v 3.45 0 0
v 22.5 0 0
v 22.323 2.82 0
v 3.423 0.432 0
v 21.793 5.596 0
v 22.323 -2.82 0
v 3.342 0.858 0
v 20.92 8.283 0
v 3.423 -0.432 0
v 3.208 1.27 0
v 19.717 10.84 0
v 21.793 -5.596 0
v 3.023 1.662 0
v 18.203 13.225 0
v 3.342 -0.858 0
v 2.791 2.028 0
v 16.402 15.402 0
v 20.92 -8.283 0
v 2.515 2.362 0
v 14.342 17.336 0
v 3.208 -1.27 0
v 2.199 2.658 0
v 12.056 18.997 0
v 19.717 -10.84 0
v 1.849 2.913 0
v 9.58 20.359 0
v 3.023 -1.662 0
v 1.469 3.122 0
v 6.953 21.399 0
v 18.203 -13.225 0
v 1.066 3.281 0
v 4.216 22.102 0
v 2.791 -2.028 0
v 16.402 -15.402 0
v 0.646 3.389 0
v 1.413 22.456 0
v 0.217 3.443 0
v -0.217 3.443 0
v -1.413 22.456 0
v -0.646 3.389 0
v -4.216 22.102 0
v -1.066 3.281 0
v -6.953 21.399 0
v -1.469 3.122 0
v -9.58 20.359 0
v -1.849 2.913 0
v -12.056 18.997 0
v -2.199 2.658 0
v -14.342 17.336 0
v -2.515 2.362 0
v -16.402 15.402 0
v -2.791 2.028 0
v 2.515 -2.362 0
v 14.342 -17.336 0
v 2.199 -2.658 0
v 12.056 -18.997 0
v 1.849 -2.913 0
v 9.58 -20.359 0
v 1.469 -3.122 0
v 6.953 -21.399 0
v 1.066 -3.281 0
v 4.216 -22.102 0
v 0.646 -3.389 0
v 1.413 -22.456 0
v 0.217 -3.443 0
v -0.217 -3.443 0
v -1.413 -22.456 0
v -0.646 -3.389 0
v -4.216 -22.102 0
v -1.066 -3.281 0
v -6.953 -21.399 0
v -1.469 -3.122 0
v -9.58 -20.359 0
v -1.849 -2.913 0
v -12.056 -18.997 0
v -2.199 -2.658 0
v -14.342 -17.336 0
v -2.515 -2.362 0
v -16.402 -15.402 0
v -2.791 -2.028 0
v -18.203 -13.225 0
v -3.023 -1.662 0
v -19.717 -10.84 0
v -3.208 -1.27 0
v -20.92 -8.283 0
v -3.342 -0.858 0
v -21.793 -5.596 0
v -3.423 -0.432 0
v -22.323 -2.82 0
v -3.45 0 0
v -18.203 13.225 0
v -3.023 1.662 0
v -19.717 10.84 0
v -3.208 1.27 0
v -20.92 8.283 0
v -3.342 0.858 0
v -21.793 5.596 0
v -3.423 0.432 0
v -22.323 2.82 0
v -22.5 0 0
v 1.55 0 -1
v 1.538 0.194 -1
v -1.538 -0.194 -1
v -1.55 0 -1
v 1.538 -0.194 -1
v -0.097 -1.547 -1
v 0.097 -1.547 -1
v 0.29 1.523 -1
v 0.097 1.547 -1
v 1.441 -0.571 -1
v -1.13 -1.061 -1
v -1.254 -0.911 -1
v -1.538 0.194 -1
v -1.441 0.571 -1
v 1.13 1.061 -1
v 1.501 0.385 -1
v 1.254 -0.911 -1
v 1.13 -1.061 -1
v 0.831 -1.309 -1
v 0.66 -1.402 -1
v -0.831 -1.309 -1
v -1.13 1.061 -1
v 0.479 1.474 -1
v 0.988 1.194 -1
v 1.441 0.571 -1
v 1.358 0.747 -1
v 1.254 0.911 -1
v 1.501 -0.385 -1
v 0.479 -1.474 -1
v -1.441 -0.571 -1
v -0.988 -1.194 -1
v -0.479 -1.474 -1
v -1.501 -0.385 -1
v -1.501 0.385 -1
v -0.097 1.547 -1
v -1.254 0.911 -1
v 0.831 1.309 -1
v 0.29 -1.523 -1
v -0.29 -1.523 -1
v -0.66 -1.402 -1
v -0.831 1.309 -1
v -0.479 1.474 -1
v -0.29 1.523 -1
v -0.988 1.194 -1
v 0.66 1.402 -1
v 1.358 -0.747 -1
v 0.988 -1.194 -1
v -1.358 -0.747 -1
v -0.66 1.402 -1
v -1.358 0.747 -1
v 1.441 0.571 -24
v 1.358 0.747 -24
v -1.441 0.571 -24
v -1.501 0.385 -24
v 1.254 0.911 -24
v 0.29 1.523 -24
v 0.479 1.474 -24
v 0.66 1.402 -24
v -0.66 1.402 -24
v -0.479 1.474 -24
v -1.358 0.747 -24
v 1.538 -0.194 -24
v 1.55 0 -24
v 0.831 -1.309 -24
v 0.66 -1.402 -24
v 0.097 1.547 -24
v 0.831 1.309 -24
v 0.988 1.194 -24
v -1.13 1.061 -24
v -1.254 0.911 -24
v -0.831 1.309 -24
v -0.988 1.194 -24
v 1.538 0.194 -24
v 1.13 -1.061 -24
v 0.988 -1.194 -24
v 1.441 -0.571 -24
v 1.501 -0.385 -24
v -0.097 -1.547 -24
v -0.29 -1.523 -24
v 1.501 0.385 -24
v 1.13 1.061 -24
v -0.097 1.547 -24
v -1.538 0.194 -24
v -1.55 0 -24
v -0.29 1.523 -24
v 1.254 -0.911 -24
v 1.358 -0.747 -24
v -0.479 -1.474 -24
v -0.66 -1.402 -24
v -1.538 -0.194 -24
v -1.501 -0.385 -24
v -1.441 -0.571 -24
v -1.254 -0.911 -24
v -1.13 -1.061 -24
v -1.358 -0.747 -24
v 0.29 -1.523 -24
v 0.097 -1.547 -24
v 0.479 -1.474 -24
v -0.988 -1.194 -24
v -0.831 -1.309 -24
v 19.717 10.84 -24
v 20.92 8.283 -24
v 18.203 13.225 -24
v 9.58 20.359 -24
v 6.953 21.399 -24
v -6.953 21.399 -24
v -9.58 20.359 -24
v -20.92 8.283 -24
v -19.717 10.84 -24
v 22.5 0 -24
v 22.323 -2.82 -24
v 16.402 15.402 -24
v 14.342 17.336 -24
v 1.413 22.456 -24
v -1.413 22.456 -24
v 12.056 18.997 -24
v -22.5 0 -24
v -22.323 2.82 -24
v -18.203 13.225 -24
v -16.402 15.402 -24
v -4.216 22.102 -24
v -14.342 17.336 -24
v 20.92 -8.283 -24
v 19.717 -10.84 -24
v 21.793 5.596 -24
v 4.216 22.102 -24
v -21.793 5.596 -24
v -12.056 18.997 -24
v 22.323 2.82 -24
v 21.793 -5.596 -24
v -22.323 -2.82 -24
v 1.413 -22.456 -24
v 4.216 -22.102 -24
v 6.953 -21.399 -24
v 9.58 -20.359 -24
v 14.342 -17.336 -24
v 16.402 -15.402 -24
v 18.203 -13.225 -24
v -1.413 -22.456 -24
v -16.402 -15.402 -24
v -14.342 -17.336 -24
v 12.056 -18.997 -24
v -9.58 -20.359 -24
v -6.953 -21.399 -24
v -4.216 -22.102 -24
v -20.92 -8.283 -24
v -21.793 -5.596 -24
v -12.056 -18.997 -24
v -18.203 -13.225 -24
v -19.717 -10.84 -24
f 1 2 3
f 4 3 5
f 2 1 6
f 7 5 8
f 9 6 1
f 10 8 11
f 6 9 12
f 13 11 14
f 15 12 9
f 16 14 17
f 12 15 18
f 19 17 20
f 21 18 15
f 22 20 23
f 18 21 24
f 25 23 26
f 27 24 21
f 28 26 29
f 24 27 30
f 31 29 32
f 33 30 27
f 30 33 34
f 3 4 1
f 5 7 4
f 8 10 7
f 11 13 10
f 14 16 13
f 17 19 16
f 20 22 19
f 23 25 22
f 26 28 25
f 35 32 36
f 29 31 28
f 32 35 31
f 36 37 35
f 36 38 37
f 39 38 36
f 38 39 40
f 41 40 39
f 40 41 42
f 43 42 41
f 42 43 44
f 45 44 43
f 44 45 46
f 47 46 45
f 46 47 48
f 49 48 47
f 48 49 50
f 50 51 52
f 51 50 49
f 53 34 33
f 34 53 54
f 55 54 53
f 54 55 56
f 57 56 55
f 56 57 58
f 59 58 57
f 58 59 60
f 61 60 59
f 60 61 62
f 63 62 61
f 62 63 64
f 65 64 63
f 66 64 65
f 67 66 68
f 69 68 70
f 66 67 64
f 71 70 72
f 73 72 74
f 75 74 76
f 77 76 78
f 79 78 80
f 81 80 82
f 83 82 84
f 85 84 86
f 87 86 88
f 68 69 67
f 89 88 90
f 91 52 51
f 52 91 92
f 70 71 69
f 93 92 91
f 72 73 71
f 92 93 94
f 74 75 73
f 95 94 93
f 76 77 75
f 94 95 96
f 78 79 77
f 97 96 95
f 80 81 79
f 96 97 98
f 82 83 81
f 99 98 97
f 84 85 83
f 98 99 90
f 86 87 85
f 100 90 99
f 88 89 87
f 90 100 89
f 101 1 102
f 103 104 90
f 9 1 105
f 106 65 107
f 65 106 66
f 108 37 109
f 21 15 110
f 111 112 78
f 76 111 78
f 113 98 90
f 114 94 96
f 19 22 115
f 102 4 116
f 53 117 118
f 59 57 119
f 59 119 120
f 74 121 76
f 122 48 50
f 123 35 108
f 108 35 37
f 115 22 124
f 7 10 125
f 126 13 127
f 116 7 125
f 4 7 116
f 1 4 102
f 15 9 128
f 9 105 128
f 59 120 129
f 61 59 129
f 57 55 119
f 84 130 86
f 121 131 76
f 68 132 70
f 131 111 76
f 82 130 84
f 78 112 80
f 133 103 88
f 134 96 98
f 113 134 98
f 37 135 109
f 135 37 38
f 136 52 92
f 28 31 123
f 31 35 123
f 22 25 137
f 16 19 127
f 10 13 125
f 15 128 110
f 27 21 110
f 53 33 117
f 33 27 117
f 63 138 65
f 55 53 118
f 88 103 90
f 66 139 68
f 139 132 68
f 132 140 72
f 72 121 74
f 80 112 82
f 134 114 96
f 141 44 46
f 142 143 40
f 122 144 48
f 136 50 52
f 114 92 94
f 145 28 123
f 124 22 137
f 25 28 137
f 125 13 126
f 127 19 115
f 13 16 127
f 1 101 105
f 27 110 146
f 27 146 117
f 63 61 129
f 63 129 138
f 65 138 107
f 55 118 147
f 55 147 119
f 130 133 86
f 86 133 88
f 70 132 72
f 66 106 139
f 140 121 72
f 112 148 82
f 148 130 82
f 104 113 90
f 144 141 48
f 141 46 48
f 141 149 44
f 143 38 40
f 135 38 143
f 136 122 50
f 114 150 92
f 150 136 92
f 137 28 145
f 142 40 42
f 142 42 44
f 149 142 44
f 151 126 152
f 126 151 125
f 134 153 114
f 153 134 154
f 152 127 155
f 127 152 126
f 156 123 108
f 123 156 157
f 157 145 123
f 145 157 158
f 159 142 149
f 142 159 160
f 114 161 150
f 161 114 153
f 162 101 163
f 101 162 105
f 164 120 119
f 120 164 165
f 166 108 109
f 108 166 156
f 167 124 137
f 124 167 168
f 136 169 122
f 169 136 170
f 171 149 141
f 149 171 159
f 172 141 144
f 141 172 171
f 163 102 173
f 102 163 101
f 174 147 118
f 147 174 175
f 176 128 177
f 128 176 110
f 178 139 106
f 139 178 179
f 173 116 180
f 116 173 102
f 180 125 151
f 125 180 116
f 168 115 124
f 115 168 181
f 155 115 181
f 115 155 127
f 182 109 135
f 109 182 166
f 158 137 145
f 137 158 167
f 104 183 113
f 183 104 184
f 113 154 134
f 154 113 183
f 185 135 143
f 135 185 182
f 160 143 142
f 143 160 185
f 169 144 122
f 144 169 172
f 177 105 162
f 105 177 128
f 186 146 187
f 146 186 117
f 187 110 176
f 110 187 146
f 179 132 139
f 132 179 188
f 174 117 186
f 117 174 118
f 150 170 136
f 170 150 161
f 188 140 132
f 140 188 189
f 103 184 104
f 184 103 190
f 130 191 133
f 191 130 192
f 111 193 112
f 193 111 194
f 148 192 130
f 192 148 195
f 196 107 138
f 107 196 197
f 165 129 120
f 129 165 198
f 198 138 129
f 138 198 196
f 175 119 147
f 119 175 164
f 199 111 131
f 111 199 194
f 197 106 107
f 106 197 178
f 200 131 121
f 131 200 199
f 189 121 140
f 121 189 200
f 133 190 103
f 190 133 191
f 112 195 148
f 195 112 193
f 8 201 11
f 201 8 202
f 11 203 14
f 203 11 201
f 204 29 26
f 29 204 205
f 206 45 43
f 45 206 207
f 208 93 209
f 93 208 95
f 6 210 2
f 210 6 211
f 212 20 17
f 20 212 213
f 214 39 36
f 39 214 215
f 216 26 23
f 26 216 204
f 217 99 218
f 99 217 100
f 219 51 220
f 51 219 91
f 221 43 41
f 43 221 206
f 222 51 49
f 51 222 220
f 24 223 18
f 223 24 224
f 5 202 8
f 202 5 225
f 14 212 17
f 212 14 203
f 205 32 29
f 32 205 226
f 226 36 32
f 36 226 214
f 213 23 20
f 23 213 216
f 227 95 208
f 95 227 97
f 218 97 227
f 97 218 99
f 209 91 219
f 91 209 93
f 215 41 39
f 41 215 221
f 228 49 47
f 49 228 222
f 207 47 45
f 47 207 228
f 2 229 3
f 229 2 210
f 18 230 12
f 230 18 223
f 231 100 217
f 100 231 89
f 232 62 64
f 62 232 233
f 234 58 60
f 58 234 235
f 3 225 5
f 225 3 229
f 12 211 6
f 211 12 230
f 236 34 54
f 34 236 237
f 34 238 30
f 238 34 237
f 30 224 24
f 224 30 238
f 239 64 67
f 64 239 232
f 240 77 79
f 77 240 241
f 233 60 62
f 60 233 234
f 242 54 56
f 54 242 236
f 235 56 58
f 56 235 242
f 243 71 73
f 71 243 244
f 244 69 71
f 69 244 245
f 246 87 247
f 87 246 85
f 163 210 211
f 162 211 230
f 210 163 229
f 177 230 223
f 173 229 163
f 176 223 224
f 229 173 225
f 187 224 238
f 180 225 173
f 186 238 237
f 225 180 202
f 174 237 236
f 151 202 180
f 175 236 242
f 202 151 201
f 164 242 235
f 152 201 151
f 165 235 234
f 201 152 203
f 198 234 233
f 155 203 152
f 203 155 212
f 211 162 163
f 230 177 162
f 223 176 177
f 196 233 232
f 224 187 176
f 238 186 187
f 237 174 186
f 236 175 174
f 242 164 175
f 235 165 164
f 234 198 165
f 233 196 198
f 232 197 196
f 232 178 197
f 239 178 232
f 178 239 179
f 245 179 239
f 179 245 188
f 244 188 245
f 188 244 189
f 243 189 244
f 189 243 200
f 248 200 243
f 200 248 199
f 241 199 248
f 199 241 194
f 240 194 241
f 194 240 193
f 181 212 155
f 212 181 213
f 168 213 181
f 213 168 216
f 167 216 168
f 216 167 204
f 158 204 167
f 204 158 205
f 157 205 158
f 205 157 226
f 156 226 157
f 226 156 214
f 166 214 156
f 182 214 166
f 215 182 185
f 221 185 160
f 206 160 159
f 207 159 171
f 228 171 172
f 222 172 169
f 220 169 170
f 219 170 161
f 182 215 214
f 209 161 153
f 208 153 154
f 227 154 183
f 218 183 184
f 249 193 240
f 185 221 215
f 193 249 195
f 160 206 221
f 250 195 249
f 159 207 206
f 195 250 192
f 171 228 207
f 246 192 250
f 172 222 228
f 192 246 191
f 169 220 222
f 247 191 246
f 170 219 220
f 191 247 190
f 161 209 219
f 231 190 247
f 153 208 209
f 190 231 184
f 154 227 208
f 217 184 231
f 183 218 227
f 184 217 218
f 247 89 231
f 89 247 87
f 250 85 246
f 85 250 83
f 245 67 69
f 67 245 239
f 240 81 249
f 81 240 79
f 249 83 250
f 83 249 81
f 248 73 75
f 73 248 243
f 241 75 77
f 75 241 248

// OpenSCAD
$fn = 50;

difference() {
	union() {
		translate(v = [0, 0, -24.0]) {
			cylinder(h = 24, r = 22.5);
		}
	}
	union() {
		translate(v = [0, 0, 0]) {
			rotate(a = [0, 0, 0]) {
				difference() {
					union() {
						translate(v = [0, 0, -27.0]) {
							cylinder(h = 27, r = 1.25);
						}
						translate(v = [0, 0, -1.0]) {
							cylinder(h = 1.0, r1 = 1.55, r2 = 3.45);
						}
						translate(v = [0, 0, -27.0]) {
							cylinder(h = 27, r = 1.55);
						}
						translate(v = [0, 0, -27.0]) {
							cylinder(h = 27, r = 1.25);
						}
					}
					union();
				}
			}
		}
	}
}
